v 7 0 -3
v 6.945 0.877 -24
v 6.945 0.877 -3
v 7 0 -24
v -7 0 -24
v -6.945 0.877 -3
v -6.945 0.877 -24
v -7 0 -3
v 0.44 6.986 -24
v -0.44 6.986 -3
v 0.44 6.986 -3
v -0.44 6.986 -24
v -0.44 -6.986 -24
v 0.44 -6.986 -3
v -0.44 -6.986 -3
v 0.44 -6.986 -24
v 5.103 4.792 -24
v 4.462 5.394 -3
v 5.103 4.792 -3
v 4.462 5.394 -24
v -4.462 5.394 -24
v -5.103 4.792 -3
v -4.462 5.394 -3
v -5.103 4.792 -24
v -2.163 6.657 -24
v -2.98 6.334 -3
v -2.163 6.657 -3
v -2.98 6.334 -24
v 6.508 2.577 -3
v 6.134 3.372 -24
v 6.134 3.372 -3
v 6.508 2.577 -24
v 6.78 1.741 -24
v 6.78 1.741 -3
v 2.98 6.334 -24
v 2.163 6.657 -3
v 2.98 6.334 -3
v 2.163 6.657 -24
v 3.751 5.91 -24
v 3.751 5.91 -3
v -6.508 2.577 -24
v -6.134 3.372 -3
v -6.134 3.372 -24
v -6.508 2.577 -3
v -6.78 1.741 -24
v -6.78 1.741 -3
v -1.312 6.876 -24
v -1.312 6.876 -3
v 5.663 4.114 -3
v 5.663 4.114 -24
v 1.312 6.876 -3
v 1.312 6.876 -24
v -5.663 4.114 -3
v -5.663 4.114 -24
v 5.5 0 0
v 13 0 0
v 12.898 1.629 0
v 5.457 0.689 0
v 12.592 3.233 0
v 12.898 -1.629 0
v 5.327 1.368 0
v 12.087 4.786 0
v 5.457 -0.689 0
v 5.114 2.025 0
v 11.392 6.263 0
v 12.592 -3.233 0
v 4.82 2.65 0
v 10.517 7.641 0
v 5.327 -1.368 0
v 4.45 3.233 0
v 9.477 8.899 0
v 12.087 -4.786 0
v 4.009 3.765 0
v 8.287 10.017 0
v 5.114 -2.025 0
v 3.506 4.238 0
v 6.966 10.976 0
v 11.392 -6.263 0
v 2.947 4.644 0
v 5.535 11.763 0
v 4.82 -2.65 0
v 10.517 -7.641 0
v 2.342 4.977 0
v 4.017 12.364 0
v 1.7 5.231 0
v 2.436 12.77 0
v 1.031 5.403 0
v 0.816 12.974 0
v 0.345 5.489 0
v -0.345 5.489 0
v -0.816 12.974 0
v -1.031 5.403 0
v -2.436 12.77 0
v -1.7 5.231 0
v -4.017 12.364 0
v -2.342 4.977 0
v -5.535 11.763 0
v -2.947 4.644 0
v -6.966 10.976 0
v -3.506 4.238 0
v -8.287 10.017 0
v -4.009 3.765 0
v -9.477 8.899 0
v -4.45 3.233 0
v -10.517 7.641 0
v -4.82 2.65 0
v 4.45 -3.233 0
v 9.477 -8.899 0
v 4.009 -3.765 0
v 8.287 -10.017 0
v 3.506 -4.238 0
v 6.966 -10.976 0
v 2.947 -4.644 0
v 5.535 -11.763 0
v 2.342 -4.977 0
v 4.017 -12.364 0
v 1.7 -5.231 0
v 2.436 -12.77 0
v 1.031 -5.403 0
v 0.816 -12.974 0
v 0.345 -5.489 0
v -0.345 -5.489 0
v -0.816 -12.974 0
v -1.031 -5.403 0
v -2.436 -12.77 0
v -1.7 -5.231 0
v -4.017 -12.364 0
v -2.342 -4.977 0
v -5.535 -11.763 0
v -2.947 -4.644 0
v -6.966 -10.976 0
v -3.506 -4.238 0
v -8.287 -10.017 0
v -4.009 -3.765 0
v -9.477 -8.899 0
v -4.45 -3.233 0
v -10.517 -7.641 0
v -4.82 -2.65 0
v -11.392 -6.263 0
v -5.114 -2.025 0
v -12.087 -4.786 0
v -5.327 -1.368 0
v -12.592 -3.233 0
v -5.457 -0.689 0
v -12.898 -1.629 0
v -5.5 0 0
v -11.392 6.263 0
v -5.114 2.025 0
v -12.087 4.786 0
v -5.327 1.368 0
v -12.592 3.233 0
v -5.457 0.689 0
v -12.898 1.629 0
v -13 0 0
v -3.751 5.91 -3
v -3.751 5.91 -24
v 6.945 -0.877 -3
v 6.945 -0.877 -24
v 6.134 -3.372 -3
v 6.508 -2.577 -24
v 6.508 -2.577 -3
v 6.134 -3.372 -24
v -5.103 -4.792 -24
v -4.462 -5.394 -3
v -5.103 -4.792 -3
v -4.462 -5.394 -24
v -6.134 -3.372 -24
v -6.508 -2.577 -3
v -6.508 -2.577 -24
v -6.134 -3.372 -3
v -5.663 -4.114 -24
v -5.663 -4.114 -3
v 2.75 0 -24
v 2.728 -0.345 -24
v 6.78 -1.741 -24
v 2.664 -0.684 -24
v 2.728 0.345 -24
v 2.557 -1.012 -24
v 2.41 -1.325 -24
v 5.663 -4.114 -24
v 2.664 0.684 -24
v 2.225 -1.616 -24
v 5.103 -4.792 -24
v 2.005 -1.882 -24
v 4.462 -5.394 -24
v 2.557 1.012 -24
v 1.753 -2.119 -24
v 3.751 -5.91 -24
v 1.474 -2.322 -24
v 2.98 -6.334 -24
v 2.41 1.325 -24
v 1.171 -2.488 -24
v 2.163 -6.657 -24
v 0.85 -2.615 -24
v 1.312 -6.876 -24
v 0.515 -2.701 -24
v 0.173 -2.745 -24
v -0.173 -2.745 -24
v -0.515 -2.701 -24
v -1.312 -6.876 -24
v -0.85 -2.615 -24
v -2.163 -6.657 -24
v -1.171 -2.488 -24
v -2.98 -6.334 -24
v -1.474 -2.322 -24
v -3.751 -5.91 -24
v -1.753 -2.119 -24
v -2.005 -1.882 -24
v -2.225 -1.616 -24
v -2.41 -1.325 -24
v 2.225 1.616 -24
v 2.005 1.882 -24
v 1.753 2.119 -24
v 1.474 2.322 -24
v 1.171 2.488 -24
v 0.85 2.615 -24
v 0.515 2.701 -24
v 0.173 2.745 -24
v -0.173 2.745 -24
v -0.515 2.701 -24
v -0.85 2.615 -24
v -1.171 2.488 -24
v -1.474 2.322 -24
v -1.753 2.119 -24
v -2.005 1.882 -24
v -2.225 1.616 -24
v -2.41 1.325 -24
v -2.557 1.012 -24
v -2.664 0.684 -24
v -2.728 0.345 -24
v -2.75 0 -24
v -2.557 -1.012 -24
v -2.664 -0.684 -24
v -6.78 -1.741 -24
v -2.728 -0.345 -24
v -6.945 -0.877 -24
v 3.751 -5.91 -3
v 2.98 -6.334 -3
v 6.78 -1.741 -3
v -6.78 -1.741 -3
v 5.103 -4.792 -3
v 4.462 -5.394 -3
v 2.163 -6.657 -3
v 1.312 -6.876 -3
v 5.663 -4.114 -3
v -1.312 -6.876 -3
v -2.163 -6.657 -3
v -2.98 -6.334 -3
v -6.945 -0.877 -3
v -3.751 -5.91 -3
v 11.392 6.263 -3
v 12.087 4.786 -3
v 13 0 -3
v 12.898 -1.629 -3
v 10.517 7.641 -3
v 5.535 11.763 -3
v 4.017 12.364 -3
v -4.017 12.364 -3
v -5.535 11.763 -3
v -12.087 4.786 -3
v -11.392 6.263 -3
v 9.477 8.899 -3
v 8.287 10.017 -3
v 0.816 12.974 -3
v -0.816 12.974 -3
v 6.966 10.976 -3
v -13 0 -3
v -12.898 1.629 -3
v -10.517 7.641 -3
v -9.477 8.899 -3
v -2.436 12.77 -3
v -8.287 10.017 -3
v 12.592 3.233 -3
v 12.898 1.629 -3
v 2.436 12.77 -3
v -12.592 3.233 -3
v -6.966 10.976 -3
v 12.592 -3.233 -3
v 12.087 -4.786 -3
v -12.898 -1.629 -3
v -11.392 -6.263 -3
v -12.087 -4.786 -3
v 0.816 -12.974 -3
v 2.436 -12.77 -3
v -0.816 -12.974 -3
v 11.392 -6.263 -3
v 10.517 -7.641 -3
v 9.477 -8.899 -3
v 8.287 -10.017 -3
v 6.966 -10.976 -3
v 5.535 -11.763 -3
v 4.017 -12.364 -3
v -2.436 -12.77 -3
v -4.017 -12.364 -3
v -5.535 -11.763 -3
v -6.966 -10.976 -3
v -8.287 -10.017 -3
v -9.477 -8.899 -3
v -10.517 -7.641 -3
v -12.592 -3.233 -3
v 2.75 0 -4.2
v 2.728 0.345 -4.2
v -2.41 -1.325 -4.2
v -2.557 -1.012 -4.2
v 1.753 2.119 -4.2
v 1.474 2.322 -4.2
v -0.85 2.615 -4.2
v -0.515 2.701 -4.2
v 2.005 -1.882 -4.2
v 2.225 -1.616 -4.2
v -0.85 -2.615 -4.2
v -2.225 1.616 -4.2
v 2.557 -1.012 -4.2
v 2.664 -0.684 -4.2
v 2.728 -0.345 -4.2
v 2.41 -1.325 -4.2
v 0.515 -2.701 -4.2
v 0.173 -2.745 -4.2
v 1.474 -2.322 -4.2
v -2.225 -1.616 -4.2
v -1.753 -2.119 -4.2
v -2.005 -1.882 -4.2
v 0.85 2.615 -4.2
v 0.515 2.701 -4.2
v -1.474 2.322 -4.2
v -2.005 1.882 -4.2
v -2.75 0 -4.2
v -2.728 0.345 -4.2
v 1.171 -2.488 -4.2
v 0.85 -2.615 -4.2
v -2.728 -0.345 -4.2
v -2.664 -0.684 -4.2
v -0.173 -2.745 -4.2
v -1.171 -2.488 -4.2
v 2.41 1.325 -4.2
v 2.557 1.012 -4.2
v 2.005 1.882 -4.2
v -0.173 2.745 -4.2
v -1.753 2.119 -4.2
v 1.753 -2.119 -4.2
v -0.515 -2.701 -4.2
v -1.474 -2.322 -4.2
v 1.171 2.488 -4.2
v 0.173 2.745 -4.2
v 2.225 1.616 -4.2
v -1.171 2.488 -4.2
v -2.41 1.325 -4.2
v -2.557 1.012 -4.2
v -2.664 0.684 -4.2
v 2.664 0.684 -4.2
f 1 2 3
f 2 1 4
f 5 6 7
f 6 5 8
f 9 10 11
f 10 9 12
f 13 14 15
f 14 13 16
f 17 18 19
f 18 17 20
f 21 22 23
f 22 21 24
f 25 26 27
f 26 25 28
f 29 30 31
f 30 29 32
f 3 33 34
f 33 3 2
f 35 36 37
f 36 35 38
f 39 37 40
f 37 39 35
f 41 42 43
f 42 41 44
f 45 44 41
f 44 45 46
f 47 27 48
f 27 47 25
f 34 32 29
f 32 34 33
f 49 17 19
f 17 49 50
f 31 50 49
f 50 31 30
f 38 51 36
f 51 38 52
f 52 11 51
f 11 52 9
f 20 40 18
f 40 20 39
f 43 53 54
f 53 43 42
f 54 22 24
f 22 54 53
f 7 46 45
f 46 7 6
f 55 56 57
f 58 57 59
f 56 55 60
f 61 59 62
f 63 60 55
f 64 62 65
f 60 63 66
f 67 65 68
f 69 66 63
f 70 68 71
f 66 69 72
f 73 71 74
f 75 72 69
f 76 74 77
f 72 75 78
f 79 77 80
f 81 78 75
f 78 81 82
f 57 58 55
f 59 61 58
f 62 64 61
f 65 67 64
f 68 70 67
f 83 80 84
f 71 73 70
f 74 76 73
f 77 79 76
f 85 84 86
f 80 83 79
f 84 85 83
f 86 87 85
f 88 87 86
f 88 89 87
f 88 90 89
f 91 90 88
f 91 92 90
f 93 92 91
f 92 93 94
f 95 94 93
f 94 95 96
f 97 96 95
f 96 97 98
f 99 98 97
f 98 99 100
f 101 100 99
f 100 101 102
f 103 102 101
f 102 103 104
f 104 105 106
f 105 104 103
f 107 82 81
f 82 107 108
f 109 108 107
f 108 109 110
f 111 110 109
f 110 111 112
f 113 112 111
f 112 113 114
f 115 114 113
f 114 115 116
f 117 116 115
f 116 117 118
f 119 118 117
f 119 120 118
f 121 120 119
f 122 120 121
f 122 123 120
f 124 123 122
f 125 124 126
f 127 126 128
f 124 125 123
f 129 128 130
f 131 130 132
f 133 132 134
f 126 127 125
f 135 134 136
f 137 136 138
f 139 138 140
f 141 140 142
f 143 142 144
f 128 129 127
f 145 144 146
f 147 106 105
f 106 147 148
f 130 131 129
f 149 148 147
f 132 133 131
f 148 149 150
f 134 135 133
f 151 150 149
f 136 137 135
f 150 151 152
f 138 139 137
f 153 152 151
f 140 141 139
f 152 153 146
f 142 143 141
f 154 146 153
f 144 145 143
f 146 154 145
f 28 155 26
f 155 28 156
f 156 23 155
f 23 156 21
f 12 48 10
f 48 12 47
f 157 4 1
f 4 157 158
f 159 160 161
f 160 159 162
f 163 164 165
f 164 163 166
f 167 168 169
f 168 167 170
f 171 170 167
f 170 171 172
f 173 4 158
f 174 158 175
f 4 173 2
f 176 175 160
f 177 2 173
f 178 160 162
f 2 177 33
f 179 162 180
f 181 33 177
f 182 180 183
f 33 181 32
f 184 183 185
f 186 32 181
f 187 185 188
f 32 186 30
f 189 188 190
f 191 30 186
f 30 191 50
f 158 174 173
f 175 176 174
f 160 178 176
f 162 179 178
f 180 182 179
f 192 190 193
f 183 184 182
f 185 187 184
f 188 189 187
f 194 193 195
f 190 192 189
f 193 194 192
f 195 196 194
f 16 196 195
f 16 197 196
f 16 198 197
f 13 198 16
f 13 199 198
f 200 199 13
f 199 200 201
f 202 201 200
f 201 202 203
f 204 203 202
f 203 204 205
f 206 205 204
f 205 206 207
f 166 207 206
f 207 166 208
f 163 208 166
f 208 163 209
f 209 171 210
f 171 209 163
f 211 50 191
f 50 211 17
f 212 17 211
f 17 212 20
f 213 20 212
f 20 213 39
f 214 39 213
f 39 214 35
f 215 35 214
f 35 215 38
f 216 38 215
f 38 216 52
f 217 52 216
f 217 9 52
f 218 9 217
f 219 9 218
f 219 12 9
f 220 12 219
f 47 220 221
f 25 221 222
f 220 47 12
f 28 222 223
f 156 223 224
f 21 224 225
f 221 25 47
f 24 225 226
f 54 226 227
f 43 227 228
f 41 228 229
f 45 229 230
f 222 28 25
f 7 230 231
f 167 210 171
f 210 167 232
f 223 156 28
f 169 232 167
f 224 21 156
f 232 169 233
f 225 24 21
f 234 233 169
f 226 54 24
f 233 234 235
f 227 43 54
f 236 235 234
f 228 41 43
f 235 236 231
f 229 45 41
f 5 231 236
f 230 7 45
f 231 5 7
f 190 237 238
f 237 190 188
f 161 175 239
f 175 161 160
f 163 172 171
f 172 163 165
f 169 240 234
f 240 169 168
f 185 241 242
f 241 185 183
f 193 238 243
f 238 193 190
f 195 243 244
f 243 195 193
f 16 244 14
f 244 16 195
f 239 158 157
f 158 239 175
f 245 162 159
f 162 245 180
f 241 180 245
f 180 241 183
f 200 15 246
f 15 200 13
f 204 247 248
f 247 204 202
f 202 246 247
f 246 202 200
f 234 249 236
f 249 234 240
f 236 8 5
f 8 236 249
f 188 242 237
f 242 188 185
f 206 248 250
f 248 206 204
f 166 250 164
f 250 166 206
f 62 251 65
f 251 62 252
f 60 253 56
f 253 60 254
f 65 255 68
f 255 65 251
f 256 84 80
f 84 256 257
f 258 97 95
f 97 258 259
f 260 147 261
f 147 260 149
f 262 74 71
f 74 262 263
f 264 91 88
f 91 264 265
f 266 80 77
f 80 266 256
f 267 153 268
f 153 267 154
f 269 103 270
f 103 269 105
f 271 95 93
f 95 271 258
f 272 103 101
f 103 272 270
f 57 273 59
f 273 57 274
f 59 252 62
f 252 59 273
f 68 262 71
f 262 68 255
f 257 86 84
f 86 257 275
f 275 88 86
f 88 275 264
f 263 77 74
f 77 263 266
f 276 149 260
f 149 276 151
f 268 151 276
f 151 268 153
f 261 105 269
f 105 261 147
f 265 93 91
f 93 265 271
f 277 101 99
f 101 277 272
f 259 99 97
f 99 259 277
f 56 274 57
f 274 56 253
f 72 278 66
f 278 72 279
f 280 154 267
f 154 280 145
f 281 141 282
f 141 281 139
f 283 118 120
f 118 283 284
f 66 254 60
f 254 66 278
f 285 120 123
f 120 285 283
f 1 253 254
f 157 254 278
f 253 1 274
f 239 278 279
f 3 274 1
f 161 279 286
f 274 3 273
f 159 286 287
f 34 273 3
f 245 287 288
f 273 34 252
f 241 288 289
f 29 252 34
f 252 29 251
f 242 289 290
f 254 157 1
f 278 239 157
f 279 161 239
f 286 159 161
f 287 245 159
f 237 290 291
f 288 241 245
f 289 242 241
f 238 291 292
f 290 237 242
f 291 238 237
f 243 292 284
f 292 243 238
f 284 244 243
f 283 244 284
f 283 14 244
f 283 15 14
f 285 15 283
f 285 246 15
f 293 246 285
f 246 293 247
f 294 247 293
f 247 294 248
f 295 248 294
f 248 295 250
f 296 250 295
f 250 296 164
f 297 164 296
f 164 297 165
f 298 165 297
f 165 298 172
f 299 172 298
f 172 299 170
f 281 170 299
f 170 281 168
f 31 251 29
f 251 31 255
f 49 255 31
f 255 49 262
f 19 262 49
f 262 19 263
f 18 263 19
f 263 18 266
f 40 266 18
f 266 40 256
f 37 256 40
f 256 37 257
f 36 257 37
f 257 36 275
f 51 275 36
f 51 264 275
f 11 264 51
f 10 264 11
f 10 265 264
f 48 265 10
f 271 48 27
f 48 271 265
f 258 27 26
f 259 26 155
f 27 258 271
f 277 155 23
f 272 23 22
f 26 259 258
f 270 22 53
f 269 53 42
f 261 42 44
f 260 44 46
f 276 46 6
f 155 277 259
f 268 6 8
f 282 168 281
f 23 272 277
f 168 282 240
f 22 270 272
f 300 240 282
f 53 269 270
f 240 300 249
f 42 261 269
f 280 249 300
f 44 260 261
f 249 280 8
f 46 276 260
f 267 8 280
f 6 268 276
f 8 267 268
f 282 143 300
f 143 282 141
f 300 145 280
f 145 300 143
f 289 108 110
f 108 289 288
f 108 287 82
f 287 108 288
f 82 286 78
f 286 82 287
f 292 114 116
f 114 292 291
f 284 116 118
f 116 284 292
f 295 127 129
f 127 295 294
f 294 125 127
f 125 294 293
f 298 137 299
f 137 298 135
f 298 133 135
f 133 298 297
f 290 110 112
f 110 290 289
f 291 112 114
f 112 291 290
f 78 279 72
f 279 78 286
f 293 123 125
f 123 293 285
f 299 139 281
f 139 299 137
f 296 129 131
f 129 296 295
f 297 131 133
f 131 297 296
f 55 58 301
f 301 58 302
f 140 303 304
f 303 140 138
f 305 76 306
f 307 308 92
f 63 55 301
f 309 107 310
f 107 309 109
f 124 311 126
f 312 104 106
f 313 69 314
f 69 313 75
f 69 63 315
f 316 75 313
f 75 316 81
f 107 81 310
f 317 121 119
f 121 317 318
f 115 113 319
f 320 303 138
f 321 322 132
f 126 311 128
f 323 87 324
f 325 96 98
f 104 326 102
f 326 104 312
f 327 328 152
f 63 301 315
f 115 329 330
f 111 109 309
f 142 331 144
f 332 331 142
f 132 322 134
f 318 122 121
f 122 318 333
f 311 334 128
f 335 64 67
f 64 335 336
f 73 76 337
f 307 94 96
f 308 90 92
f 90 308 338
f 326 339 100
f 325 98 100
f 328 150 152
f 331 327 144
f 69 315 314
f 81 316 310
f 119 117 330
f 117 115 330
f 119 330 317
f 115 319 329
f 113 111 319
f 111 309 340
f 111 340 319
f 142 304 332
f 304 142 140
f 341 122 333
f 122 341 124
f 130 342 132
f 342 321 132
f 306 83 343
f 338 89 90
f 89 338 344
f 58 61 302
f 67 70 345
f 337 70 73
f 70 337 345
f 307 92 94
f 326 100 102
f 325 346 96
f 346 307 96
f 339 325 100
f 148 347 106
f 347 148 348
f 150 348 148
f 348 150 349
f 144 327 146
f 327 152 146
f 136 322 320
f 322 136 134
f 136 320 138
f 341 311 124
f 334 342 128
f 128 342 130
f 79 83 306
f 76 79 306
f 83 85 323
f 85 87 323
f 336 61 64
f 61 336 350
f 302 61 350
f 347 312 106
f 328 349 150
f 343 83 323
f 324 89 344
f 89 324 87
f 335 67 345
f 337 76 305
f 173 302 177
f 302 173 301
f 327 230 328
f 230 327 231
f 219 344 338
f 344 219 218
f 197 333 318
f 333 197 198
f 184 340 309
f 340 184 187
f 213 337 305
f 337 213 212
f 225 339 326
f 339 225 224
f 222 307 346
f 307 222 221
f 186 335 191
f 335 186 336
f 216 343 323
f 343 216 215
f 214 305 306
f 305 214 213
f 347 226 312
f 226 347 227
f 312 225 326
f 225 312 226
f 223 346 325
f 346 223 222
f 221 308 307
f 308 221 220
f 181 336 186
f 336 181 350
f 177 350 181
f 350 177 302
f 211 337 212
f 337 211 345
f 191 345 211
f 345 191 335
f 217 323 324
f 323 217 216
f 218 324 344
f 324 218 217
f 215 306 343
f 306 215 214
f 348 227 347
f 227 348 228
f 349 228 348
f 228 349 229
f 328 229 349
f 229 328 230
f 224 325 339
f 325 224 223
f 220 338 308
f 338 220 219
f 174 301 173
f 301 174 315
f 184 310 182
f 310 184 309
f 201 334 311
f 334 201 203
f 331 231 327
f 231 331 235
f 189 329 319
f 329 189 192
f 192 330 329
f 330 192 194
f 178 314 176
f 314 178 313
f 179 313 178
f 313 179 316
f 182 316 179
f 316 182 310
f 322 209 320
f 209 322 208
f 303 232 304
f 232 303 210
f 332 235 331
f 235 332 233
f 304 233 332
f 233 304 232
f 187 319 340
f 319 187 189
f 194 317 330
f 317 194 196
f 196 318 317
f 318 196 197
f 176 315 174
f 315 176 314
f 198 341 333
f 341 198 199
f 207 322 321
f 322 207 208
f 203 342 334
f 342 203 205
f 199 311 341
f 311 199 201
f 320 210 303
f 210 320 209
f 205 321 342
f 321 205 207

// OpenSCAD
$fn = 50;


difference() {
	union() {
		translate(v = [0, 0, -24.0000000000]) {
			cylinder(h = 24, r = 7.0000000000);
		}
		translate(v = [0, 0, -3.0000000000]) {
			cylinder(h = 3, r = 13.0000000000);
		}
	}
	union() {
		translate(v = [0, 0, 0]) {
			rotate(a = [0, 0, 0]) {
				difference() {
					union() {
						#translate(v = [0, 0, -24.0000000000]) {
							cylinder(h = 24, r = 2.2500000000);
						}
						#translate(v = [0, 0, -4.2000000000]) {
							cylinder(h = 4.2000000000, r = 7.0000000000, r1 = 2.7500000000, r2 = 5.5000000000);
						}
						#translate(v = [0, 0, -24.0000000000]) {
							cylinder(h = 24, r = 2.7500000000);
						}
						#translate(v = [0, 0, -24.0000000000]) {
							cylinder(h = 24, r = 2.2500000000);
						}
					}
					union();
				}
			}
		}
	}
}
